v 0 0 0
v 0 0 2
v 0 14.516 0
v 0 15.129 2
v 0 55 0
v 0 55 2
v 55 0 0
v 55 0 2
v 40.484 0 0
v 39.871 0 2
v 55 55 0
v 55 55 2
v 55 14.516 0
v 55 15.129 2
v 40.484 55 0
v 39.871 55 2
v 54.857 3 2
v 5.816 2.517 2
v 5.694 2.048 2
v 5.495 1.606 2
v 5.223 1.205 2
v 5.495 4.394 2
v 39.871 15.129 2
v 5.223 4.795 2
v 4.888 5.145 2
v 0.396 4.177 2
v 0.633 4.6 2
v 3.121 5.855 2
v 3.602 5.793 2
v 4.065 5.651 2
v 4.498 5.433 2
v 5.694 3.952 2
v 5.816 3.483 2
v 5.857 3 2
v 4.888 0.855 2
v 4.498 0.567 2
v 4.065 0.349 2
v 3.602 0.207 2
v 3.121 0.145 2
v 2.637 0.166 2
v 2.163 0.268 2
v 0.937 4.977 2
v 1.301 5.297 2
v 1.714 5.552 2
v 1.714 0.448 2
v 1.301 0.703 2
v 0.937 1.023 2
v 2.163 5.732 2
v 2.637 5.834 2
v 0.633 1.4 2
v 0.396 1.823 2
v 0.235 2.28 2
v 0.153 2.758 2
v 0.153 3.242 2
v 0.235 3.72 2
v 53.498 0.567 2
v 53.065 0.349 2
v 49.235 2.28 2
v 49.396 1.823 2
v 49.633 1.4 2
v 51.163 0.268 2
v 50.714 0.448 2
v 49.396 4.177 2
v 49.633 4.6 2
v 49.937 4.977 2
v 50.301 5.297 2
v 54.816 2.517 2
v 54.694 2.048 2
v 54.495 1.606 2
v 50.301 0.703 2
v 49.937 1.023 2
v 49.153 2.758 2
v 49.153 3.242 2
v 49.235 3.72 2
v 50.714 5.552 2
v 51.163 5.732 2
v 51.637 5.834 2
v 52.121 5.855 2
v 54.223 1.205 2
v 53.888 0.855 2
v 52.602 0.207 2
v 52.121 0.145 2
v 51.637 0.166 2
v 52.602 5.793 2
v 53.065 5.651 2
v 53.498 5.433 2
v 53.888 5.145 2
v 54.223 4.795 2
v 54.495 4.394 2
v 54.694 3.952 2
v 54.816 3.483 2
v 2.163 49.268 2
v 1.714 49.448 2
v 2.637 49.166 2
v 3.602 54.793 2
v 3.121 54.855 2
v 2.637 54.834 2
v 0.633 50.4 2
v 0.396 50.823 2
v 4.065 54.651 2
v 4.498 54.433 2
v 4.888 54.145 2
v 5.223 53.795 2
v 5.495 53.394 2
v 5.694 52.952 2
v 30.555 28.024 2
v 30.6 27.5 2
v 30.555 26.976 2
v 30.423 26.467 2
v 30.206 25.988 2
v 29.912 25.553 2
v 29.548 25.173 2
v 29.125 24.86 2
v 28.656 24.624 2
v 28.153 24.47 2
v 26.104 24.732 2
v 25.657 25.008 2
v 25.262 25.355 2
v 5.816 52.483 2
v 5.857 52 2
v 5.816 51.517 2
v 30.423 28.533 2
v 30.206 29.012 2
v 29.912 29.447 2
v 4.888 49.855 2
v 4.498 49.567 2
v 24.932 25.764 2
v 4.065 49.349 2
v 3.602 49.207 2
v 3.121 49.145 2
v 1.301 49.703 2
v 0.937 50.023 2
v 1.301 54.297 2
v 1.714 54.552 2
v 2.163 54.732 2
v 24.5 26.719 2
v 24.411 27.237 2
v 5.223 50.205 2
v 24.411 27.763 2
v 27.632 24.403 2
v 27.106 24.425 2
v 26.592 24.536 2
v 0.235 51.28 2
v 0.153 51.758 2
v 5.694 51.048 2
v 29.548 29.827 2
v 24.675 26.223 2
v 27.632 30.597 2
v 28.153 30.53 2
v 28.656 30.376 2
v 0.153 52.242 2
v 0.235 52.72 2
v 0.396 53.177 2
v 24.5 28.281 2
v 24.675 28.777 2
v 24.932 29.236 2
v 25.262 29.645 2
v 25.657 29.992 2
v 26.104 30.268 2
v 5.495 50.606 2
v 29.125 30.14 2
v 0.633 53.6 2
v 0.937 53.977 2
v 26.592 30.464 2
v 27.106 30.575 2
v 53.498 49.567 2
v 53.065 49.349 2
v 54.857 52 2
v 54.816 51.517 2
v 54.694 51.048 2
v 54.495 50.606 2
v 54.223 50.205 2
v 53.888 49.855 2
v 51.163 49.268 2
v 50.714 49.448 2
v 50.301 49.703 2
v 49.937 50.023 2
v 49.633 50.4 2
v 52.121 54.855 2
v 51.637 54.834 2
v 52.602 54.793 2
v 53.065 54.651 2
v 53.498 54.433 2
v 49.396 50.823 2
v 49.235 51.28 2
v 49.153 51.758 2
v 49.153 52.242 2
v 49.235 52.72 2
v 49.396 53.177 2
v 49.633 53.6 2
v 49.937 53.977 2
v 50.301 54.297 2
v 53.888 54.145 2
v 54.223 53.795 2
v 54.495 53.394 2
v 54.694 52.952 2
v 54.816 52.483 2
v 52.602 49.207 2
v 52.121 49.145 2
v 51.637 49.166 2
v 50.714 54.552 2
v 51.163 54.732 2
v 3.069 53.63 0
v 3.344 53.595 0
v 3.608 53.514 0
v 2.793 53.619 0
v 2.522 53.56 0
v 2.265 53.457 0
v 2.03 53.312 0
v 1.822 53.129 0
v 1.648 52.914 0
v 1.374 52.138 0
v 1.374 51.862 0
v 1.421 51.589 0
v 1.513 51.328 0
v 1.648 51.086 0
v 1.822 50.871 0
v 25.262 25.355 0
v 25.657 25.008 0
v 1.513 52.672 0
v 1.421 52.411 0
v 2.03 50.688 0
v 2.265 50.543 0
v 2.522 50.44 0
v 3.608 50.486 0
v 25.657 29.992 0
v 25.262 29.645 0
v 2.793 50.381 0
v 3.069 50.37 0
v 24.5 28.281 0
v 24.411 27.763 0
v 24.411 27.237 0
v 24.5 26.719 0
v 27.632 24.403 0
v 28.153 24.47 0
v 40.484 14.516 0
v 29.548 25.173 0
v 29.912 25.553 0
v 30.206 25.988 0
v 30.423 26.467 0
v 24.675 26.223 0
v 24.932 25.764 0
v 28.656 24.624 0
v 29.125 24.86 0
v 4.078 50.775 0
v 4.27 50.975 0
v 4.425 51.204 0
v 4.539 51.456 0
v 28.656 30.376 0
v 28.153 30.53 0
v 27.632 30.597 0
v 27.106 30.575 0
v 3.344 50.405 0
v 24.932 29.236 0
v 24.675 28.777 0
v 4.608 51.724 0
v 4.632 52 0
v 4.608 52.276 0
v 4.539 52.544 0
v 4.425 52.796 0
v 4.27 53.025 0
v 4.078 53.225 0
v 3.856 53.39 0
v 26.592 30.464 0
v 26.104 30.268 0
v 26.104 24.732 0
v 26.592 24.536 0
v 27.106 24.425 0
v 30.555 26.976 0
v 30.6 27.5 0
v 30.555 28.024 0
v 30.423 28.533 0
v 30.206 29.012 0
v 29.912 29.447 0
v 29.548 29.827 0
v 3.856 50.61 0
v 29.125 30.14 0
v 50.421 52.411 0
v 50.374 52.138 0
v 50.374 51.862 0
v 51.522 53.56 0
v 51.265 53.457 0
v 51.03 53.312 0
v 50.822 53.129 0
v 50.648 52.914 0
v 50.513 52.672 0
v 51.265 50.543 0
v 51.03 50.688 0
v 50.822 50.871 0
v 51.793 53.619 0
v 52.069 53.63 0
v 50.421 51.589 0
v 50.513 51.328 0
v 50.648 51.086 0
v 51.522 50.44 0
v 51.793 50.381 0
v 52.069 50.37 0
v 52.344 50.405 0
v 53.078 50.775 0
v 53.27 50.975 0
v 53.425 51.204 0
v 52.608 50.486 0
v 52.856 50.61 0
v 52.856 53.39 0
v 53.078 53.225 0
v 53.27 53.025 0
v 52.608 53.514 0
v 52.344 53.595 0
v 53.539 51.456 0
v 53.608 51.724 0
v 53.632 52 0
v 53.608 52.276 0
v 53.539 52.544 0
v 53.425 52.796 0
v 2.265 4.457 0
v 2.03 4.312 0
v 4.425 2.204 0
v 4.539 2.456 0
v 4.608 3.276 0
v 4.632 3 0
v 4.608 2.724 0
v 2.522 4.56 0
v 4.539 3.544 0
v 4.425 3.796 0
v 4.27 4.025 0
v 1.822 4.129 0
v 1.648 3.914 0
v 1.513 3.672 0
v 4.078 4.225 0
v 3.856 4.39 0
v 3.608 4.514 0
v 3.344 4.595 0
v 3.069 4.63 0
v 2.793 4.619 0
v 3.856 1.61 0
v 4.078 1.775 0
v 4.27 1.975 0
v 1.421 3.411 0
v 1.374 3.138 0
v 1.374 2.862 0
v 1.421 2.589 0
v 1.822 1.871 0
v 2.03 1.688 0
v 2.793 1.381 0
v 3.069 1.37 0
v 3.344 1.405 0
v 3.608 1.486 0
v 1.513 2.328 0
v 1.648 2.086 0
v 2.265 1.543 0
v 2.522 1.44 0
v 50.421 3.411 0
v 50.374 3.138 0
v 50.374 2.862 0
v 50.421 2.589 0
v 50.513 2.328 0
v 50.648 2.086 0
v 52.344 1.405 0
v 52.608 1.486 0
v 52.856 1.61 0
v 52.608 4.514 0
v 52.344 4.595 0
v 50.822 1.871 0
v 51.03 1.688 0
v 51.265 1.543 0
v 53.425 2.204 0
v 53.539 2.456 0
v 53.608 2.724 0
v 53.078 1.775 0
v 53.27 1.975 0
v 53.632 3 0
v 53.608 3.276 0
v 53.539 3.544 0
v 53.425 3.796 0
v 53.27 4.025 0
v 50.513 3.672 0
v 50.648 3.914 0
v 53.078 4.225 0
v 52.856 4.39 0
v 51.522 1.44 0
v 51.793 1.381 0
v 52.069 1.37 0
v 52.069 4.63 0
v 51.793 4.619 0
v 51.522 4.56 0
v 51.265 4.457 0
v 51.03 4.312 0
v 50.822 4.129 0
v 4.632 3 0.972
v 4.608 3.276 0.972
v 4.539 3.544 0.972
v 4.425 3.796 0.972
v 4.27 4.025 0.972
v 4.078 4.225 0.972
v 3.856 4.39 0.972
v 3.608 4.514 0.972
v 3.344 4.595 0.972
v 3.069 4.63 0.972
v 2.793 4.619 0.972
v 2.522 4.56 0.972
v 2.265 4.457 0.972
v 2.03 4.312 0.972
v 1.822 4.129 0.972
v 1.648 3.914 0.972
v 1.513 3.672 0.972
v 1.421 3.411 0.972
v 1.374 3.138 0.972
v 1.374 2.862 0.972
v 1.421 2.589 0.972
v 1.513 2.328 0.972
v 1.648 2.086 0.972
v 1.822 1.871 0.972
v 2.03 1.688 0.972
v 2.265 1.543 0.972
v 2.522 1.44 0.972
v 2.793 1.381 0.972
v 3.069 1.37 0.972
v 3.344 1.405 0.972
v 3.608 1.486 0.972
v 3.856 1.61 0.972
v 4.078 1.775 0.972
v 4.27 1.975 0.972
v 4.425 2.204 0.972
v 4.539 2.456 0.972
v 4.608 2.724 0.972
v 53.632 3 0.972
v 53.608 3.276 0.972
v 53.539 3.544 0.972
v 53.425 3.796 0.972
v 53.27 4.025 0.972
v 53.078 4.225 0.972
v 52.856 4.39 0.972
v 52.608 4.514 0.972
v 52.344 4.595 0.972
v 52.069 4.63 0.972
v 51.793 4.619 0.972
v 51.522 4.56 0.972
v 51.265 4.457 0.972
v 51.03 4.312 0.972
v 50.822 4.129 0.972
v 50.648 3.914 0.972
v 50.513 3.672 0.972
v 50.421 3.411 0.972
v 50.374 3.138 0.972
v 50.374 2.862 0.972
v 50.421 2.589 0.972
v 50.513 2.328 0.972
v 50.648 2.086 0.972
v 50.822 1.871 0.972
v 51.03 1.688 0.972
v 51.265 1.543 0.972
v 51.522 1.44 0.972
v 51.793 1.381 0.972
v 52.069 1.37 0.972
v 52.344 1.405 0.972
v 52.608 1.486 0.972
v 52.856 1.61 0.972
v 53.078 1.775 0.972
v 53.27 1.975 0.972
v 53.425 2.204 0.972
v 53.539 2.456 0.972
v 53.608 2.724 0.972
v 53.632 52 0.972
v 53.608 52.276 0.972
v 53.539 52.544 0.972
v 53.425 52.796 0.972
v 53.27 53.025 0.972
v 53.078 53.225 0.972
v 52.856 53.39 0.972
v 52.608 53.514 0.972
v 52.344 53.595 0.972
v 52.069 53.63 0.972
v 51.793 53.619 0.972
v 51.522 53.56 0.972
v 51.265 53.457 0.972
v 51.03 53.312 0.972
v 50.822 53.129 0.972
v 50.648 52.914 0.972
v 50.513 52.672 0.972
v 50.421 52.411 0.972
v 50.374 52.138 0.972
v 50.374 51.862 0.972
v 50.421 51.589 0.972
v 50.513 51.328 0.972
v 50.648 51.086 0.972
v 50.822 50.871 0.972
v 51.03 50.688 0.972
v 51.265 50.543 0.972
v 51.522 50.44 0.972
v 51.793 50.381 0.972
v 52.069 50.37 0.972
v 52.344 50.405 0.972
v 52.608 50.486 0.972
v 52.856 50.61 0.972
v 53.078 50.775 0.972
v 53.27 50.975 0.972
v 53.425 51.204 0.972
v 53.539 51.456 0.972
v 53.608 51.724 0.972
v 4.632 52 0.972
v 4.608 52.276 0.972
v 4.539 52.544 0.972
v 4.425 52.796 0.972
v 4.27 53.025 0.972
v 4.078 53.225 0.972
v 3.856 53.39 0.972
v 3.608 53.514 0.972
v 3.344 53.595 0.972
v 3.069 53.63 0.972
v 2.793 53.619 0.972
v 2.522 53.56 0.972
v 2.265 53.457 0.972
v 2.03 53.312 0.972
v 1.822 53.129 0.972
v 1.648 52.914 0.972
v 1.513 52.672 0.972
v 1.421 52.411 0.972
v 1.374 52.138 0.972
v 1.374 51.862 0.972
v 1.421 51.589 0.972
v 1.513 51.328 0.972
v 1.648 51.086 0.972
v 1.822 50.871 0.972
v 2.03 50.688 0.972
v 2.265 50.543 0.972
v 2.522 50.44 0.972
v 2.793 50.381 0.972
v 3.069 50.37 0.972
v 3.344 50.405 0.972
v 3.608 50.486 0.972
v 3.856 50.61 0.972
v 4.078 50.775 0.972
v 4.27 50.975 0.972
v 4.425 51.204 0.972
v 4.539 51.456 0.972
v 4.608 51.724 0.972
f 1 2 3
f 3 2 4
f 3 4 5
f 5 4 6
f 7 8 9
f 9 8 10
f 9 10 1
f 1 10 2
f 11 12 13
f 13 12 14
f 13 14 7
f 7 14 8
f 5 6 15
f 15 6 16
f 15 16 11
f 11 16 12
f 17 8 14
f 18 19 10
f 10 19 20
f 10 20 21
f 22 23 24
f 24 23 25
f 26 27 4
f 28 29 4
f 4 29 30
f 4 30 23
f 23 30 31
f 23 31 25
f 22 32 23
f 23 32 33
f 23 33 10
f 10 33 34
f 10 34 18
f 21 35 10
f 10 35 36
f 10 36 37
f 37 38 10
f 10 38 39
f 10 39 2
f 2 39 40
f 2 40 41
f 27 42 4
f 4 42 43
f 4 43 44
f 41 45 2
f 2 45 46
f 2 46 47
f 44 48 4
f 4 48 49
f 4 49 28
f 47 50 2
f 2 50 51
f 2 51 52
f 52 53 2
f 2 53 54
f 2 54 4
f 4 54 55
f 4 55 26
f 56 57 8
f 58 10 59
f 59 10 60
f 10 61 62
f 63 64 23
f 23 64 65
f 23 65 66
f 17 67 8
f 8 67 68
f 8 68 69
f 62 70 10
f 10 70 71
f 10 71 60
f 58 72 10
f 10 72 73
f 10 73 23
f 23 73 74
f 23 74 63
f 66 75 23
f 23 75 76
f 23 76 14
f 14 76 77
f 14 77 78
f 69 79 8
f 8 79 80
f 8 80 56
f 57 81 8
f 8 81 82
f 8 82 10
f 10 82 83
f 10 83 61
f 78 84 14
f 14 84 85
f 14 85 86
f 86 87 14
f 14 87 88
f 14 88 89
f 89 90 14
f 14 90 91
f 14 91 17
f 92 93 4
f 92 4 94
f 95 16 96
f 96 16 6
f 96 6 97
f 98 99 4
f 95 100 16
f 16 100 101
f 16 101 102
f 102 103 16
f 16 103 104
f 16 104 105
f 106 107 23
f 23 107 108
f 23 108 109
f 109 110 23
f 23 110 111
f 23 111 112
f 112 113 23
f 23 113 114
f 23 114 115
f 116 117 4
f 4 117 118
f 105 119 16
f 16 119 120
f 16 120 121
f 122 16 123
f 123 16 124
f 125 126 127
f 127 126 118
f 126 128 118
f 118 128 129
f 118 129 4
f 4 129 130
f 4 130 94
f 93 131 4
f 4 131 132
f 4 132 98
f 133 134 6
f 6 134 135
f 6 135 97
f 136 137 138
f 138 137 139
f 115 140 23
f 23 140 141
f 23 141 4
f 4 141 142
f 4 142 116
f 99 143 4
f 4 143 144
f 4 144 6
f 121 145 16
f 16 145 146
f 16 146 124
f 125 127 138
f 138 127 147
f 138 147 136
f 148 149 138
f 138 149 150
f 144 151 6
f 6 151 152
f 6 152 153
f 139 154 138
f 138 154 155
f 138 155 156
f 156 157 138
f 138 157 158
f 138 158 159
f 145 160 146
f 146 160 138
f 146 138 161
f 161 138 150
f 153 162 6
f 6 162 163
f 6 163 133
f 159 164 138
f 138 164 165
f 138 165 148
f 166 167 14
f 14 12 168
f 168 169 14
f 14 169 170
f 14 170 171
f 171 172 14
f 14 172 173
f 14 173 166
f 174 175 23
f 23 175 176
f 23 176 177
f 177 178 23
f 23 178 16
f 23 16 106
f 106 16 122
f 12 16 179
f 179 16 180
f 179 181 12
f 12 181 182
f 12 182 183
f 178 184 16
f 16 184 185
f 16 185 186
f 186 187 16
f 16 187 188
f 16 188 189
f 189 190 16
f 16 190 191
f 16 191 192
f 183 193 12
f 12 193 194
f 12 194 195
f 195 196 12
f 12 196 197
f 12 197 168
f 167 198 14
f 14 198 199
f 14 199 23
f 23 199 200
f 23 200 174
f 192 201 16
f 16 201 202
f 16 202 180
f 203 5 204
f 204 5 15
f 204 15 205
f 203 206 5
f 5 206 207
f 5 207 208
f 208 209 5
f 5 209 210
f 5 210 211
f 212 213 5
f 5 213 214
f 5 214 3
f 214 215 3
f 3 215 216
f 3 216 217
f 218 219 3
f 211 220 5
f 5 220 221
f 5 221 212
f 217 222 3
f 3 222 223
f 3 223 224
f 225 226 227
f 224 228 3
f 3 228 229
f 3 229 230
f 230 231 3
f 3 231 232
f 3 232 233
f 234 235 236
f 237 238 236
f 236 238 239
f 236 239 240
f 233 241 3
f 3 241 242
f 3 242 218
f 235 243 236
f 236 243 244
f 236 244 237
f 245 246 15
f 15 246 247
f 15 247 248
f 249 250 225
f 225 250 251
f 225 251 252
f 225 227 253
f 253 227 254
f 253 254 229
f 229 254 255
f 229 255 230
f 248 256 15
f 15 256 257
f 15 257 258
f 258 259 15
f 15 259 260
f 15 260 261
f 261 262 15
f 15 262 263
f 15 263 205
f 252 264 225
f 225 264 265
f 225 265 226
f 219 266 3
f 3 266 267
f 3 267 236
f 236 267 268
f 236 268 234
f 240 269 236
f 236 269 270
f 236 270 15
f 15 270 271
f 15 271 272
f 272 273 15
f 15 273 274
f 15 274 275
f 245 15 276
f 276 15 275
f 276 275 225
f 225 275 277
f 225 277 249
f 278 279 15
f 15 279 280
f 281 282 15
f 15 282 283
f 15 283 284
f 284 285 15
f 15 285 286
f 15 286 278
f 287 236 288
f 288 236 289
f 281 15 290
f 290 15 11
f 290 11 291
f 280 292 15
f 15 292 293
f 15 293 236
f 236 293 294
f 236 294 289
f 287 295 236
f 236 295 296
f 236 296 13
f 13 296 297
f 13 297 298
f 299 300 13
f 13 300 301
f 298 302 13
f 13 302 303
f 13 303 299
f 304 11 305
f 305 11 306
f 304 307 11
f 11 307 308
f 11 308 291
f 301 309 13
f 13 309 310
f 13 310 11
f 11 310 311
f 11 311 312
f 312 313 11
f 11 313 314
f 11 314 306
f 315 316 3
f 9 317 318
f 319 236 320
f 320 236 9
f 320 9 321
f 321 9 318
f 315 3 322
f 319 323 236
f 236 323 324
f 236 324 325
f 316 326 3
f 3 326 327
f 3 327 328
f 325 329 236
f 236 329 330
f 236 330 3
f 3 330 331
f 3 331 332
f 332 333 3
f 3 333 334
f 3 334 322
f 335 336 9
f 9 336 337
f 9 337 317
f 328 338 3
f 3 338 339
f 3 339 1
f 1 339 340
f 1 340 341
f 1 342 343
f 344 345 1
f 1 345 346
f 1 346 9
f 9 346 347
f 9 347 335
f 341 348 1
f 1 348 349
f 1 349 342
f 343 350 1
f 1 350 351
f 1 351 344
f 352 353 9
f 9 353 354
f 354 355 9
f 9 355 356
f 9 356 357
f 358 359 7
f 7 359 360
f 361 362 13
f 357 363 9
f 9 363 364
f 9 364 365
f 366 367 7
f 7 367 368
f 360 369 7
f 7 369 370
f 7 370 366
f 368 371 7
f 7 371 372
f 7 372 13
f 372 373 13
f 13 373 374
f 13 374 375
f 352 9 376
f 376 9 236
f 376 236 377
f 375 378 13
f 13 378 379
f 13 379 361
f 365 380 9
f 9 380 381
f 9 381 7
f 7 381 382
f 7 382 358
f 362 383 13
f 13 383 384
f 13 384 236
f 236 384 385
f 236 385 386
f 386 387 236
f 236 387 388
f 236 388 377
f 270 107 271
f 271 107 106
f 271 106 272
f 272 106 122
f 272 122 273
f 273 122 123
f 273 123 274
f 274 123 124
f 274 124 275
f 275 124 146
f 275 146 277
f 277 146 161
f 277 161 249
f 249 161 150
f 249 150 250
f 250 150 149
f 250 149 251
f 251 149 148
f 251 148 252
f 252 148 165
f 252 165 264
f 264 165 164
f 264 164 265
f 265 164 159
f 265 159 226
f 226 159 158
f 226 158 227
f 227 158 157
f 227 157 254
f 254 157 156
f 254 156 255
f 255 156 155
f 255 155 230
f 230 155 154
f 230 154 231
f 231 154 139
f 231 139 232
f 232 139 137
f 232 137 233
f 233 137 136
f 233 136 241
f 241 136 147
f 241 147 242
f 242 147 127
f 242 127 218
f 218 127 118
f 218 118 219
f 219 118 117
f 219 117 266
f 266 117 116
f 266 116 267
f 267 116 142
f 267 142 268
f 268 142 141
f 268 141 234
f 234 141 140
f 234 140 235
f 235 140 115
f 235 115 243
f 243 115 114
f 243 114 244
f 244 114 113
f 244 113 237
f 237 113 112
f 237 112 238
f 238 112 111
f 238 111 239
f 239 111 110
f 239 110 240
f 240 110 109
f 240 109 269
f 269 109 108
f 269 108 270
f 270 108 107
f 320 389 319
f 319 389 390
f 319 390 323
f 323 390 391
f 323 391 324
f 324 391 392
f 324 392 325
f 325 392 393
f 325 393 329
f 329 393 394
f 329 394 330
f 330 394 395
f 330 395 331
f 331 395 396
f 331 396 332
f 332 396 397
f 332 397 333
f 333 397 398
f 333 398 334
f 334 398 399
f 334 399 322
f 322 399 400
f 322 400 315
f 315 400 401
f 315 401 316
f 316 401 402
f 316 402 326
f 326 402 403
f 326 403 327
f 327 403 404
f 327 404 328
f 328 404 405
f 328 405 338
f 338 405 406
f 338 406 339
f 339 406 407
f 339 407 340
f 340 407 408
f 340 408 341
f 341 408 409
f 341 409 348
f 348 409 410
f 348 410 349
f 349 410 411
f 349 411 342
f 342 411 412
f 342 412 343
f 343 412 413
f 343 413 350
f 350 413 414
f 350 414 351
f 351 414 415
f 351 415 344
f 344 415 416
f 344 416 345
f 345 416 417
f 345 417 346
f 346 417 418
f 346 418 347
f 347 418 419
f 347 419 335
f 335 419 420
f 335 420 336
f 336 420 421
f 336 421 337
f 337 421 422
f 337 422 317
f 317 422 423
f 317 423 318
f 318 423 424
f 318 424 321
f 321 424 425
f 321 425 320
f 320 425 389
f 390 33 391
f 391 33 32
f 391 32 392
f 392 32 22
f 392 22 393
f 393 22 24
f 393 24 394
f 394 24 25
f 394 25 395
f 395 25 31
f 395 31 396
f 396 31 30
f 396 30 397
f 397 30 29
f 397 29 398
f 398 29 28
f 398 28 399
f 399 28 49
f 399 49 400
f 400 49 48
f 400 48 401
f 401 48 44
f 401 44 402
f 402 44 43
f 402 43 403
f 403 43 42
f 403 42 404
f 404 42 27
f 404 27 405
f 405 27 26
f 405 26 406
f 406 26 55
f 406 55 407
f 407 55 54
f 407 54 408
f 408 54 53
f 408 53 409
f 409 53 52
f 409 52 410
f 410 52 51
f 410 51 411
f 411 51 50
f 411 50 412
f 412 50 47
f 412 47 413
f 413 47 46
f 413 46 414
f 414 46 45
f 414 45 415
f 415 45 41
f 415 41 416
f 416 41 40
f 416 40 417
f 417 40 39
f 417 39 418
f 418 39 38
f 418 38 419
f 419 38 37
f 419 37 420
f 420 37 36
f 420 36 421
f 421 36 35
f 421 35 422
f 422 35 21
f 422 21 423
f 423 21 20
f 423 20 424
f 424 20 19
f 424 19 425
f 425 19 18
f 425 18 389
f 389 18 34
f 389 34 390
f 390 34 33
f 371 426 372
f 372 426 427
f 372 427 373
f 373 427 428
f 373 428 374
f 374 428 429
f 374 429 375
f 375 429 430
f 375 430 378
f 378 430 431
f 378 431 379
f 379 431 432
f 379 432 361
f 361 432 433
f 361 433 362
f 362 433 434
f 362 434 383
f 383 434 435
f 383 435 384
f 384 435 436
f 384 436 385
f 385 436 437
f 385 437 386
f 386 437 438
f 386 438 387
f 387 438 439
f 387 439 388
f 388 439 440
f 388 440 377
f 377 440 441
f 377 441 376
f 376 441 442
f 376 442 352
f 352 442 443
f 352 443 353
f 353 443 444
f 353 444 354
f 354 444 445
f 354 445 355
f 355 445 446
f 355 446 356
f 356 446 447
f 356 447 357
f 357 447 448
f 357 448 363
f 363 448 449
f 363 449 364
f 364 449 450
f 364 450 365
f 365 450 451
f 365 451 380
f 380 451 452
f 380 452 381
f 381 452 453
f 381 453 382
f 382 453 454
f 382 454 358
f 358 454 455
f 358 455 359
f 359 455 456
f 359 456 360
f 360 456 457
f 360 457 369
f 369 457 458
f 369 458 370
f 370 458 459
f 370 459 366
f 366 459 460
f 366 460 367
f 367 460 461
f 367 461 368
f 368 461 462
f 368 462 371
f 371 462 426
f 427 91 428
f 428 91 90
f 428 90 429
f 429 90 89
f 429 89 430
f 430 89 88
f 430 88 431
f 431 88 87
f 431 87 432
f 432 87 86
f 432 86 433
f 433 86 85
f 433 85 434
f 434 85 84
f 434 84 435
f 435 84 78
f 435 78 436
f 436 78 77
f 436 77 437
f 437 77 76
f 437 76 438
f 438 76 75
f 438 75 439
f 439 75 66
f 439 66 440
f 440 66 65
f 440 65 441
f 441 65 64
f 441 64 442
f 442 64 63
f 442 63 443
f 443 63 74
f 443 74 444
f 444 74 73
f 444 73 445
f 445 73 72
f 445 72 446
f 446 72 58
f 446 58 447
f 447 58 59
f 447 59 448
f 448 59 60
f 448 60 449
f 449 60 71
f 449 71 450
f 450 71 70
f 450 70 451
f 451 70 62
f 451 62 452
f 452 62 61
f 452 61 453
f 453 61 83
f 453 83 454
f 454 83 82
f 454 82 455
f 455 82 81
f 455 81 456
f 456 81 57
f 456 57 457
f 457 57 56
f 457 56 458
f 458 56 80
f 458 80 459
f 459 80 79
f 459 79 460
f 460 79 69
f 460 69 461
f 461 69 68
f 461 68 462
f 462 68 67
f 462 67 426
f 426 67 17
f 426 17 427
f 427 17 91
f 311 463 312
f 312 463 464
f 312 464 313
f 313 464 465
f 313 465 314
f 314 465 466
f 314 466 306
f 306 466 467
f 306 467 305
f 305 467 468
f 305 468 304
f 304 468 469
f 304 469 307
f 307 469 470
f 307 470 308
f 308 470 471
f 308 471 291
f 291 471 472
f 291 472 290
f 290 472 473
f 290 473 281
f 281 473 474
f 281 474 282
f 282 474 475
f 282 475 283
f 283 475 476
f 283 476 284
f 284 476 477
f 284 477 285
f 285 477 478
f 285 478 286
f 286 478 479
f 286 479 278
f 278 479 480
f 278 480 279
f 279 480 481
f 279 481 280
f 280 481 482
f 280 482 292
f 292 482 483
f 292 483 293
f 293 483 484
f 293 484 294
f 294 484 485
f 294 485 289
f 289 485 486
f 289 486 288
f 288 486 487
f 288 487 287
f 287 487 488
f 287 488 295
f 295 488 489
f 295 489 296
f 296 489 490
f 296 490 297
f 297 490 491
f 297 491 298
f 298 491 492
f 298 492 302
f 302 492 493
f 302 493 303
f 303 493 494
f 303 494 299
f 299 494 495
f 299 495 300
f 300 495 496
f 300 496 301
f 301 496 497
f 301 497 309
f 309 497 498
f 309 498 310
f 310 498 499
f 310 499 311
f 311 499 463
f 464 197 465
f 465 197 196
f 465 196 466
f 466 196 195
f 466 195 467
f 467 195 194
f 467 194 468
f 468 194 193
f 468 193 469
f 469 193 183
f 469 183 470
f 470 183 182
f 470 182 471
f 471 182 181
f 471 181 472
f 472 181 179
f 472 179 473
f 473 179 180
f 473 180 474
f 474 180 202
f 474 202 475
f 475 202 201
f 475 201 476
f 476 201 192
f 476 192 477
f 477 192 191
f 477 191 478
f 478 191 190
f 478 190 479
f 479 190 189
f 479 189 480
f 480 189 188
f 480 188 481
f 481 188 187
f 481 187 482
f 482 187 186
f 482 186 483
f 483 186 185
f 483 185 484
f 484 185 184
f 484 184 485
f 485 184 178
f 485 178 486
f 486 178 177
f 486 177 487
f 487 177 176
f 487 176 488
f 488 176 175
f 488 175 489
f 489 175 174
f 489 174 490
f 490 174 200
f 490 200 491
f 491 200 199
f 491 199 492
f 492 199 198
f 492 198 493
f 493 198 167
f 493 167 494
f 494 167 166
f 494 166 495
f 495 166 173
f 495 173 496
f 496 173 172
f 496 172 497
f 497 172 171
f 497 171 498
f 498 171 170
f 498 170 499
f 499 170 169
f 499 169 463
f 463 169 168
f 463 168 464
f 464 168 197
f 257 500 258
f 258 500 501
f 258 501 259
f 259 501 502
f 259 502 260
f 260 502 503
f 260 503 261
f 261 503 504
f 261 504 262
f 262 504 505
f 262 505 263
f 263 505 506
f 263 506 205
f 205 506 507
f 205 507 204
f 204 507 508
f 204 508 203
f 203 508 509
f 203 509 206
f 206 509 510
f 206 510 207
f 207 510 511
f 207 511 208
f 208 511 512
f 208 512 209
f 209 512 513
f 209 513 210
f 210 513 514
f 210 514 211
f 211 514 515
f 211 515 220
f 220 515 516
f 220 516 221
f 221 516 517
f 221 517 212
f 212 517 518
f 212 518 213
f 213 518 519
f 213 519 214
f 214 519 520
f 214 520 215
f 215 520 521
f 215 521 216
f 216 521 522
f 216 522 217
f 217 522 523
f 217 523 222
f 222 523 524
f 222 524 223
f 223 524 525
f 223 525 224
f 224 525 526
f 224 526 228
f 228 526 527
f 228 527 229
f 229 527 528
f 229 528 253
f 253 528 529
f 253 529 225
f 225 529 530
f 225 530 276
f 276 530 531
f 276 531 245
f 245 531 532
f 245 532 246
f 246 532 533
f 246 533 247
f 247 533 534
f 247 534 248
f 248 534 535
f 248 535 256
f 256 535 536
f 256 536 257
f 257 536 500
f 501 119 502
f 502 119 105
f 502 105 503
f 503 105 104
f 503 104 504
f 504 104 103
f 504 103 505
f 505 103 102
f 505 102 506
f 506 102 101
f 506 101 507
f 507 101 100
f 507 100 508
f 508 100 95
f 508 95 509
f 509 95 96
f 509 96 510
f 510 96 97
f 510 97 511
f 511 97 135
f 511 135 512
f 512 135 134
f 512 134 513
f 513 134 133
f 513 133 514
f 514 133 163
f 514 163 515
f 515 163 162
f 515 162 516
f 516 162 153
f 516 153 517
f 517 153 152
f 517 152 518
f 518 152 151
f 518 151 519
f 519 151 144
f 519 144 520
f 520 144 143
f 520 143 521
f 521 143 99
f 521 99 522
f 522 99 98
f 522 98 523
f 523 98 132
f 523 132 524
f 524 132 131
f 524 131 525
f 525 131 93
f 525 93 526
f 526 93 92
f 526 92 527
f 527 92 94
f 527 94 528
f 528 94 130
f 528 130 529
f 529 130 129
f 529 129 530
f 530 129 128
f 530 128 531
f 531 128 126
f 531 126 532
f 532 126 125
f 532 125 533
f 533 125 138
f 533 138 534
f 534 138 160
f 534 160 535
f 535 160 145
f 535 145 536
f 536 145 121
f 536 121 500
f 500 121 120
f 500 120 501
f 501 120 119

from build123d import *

# Parameters (mm, degrees)
SKETCH1_W                                 = 55
SKETCH1_H                                 = 55
BOSS_EXTRUDE1_DEPTH                       = 2
SKETCH3_R                                 = 3.1
CUT_EXTRUDE1_DEPTH                        = 78.807454656
CSK_FOR_4_FLAT_HEAD_MACHINE_SCREW_2_COUNT = 2
CSK_FOR_4_FLAT_HEAD_MACHINE_SCREW_2_PITCH = 49
CSK_FOR_4_FLAT_HEAD_MACHINE_SCREW_3_COUNT = 2
CSK_FOR_4_FLAT_HEAD_MACHINE_SCREW_3_PITCH = 69.296464556
CSK_FOR_4_FLAT_HEAD_MACHINE_SCREW_4_COUNT = 2
CSK_FOR_4_FLAT_HEAD_MACHINE_SCREW_4_PITCH = 49


with BuildPart() as part:
    # Sketch1 → Boss-Extrude1 (new body)
    with BuildSketch(Plane.XY):
        with Locations((27.5, 27.5)):
            Rectangle(SKETCH1_W, SKETCH1_H)
    extrude(amount=BOSS_EXTRUDE1_DEPTH)

    # Sketch3 → Cut-Extrude1 (cut, through all)
    with BuildSketch(Plane.XY.offset(2)):
        with Locations((27.5, 27.5)):
            Circle(SKETCH3_R)
    extrude(amount=-CUT_EXTRUDE1_DEPTH, mode=Mode.SUBTRACT)

    # Sketch5 → CSK for #4 Flat Head Machine Screw (100)1 (revolve, cut)
    with BuildSketch(Plane(origin=(3, 52, 2), x_dir=(0, -1, 0), z_dir=(1, 0, 0))):
        Polygon((0, 0), (0, 2), (1.63195, 2), (1.63195, 1.028358553), (2.8575, 0), align=None)
    csk_for_4_flat_head_machine_screw_100 = revolve(axis=Axis((3, 52, 8.35), (0, 0, -1)), mode=Mode.SUBTRACT)

    # CSK for _4 Flat Head Machine Screw _ 2: CSK for #4 Flat Head Machine Screw (100)1 ×2
    with Locations(*[(i * CSK_FOR_4_FLAT_HEAD_MACHINE_SCREW_2_PITCH, 0, 0) for i in range(1, CSK_FOR_4_FLAT_HEAD_MACHINE_SCREW_2_COUNT)]):
        add(csk_for_4_flat_head_machine_screw_100, mode=Mode.SUBTRACT)

    # CSK for _4 Flat Head Machine Screw _ 3: CSK for #4 Flat Head Machine Screw (100)1 ×2
    with Locations(*[Vector(0.7071067811865477, -0.7071067811865475, 0) * (i * CSK_FOR_4_FLAT_HEAD_MACHINE_SCREW_3_PITCH) for i in range(1, CSK_FOR_4_FLAT_HEAD_MACHINE_SCREW_3_COUNT)]):
        add(csk_for_4_flat_head_machine_screw_100, mode=Mode.SUBTRACT)

    # CSK for _4 Flat Head Machine Screw _ 4: CSK for #4 Flat Head Machine Screw (100)1 ×2
    with Locations(*[(0, -i * CSK_FOR_4_FLAT_HEAD_MACHINE_SCREW_4_PITCH, 0) for i in range(1, CSK_FOR_4_FLAT_HEAD_MACHINE_SCREW_4_COUNT)]):
        add(csk_for_4_flat_head_machine_screw_100, mode=Mode.SUBTRACT)


solid = part.part
